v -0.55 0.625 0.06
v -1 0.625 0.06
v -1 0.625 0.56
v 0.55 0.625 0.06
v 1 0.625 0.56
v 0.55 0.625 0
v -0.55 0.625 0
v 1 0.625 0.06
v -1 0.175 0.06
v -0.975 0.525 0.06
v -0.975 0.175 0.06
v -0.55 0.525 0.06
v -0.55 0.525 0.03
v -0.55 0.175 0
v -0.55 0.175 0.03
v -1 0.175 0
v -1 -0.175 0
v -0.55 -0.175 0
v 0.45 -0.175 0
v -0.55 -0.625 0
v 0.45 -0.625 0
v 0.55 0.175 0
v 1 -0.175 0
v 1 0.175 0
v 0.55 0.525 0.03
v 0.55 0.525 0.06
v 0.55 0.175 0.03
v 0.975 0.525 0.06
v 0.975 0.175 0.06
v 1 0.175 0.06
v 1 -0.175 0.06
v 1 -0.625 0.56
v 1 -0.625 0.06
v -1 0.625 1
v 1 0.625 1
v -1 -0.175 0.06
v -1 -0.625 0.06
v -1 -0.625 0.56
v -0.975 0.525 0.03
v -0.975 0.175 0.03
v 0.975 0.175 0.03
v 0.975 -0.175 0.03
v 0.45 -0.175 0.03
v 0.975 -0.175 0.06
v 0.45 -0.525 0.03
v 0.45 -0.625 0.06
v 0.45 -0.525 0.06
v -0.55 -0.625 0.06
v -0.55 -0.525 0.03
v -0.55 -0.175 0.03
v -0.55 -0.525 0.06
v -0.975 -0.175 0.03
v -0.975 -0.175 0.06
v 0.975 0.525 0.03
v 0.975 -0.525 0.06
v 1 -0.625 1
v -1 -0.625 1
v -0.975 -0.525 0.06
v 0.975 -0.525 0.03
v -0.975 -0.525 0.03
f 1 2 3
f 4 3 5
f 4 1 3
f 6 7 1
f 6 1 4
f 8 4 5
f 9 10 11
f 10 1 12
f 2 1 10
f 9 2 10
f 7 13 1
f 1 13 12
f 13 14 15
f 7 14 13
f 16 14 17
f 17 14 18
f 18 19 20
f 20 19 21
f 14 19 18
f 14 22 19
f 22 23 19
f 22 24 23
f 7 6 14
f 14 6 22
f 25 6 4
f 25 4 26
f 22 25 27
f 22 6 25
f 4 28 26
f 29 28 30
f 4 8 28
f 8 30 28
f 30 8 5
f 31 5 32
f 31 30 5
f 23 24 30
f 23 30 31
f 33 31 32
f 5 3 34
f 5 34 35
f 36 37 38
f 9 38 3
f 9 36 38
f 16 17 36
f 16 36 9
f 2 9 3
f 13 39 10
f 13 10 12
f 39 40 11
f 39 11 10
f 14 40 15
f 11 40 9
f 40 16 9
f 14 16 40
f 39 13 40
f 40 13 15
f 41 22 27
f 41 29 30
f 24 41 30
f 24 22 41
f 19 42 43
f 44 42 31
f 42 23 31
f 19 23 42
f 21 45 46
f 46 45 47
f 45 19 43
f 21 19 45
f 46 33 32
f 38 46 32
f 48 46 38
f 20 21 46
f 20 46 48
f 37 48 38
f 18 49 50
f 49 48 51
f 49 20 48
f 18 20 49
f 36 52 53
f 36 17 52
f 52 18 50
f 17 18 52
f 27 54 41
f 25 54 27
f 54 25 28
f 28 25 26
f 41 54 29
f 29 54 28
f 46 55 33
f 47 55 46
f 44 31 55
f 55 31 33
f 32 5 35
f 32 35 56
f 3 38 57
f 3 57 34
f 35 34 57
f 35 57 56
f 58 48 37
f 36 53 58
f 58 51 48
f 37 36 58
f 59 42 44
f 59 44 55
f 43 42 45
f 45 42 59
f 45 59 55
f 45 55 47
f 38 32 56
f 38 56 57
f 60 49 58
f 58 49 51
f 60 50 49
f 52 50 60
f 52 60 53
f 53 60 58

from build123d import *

# Parameters (mm, degrees)
SKETCH_W      = 2
SKETCH_H      = 1.25
PAD_DEPTH     = 0.56
PAD_FACE6_W   = 1.25
PAD_FACE6_H   = 2
PAD001_DEPTH  = 0.44
SKETCH002_W   = 0.45
SKETCH002_H   = 0.45
SKETCH002_W_2 = 0.55
POCKET_DEPTH  = 0.06
PAD002_START  = 0.03
SKETCH003_W   = 0.425
SKETCH003_H   = 0.35
SKETCH003_W_2 = 0.525
PAD002_DEPTH  = 0.03


with BuildPart() as part:
    # Sketch → Pad (new body)
    with BuildSketch(Plane.XY):
        Rectangle(SKETCH_W, SKETCH_H)
    extrude(amount=PAD_DEPTH)

    # Pad Face6 → Pad001 (add)
    with BuildSketch(Plane(origin=(0, 0, 0.56), x_dir=(0, 1, 0), z_dir=(0, 0, 1))):
        Rectangle(PAD_FACE6_W, PAD_FACE6_H)
    extrude(amount=PAD001_DEPTH)

    # Sketch002 → Pocket (cut)
    with BuildSketch(Plane.XY):
        with Locations((-0.775, 0.4)):
            Rectangle(SKETCH002_W, SKETCH002_H)
        with Locations((0.775, 0.4)):
            Rectangle(SKETCH002_W, SKETCH002_H)
        with Locations((0.725, -0.4)):
            Rectangle(SKETCH002_W_2, SKETCH002_H)
        with Locations((-0.775, -0.4)):
            Rectangle(SKETCH002_W, SKETCH002_H)
    extrude(amount=POCKET_DEPTH, mode=Mode.SUBTRACT)

    # Sketch003 → Pad002 (join)
    with BuildSketch(Plane.XY.offset(PAD002_START)):
        with Locations((-0.7625, 0.35)):
            Rectangle(SKETCH003_W, SKETCH003_H)
        with Locations((-0.7625, -0.35)):
            Rectangle(SKETCH003_W, SKETCH003_H)
        with Locations((0.7125, -0.35)):
            Rectangle(SKETCH003_W_2, SKETCH003_H)
        with Locations((0.7625, 0.35)):
            Rectangle(SKETCH003_W, SKETCH003_H)
    extrude(amount=PAD002_DEPTH)


solid = part.part
